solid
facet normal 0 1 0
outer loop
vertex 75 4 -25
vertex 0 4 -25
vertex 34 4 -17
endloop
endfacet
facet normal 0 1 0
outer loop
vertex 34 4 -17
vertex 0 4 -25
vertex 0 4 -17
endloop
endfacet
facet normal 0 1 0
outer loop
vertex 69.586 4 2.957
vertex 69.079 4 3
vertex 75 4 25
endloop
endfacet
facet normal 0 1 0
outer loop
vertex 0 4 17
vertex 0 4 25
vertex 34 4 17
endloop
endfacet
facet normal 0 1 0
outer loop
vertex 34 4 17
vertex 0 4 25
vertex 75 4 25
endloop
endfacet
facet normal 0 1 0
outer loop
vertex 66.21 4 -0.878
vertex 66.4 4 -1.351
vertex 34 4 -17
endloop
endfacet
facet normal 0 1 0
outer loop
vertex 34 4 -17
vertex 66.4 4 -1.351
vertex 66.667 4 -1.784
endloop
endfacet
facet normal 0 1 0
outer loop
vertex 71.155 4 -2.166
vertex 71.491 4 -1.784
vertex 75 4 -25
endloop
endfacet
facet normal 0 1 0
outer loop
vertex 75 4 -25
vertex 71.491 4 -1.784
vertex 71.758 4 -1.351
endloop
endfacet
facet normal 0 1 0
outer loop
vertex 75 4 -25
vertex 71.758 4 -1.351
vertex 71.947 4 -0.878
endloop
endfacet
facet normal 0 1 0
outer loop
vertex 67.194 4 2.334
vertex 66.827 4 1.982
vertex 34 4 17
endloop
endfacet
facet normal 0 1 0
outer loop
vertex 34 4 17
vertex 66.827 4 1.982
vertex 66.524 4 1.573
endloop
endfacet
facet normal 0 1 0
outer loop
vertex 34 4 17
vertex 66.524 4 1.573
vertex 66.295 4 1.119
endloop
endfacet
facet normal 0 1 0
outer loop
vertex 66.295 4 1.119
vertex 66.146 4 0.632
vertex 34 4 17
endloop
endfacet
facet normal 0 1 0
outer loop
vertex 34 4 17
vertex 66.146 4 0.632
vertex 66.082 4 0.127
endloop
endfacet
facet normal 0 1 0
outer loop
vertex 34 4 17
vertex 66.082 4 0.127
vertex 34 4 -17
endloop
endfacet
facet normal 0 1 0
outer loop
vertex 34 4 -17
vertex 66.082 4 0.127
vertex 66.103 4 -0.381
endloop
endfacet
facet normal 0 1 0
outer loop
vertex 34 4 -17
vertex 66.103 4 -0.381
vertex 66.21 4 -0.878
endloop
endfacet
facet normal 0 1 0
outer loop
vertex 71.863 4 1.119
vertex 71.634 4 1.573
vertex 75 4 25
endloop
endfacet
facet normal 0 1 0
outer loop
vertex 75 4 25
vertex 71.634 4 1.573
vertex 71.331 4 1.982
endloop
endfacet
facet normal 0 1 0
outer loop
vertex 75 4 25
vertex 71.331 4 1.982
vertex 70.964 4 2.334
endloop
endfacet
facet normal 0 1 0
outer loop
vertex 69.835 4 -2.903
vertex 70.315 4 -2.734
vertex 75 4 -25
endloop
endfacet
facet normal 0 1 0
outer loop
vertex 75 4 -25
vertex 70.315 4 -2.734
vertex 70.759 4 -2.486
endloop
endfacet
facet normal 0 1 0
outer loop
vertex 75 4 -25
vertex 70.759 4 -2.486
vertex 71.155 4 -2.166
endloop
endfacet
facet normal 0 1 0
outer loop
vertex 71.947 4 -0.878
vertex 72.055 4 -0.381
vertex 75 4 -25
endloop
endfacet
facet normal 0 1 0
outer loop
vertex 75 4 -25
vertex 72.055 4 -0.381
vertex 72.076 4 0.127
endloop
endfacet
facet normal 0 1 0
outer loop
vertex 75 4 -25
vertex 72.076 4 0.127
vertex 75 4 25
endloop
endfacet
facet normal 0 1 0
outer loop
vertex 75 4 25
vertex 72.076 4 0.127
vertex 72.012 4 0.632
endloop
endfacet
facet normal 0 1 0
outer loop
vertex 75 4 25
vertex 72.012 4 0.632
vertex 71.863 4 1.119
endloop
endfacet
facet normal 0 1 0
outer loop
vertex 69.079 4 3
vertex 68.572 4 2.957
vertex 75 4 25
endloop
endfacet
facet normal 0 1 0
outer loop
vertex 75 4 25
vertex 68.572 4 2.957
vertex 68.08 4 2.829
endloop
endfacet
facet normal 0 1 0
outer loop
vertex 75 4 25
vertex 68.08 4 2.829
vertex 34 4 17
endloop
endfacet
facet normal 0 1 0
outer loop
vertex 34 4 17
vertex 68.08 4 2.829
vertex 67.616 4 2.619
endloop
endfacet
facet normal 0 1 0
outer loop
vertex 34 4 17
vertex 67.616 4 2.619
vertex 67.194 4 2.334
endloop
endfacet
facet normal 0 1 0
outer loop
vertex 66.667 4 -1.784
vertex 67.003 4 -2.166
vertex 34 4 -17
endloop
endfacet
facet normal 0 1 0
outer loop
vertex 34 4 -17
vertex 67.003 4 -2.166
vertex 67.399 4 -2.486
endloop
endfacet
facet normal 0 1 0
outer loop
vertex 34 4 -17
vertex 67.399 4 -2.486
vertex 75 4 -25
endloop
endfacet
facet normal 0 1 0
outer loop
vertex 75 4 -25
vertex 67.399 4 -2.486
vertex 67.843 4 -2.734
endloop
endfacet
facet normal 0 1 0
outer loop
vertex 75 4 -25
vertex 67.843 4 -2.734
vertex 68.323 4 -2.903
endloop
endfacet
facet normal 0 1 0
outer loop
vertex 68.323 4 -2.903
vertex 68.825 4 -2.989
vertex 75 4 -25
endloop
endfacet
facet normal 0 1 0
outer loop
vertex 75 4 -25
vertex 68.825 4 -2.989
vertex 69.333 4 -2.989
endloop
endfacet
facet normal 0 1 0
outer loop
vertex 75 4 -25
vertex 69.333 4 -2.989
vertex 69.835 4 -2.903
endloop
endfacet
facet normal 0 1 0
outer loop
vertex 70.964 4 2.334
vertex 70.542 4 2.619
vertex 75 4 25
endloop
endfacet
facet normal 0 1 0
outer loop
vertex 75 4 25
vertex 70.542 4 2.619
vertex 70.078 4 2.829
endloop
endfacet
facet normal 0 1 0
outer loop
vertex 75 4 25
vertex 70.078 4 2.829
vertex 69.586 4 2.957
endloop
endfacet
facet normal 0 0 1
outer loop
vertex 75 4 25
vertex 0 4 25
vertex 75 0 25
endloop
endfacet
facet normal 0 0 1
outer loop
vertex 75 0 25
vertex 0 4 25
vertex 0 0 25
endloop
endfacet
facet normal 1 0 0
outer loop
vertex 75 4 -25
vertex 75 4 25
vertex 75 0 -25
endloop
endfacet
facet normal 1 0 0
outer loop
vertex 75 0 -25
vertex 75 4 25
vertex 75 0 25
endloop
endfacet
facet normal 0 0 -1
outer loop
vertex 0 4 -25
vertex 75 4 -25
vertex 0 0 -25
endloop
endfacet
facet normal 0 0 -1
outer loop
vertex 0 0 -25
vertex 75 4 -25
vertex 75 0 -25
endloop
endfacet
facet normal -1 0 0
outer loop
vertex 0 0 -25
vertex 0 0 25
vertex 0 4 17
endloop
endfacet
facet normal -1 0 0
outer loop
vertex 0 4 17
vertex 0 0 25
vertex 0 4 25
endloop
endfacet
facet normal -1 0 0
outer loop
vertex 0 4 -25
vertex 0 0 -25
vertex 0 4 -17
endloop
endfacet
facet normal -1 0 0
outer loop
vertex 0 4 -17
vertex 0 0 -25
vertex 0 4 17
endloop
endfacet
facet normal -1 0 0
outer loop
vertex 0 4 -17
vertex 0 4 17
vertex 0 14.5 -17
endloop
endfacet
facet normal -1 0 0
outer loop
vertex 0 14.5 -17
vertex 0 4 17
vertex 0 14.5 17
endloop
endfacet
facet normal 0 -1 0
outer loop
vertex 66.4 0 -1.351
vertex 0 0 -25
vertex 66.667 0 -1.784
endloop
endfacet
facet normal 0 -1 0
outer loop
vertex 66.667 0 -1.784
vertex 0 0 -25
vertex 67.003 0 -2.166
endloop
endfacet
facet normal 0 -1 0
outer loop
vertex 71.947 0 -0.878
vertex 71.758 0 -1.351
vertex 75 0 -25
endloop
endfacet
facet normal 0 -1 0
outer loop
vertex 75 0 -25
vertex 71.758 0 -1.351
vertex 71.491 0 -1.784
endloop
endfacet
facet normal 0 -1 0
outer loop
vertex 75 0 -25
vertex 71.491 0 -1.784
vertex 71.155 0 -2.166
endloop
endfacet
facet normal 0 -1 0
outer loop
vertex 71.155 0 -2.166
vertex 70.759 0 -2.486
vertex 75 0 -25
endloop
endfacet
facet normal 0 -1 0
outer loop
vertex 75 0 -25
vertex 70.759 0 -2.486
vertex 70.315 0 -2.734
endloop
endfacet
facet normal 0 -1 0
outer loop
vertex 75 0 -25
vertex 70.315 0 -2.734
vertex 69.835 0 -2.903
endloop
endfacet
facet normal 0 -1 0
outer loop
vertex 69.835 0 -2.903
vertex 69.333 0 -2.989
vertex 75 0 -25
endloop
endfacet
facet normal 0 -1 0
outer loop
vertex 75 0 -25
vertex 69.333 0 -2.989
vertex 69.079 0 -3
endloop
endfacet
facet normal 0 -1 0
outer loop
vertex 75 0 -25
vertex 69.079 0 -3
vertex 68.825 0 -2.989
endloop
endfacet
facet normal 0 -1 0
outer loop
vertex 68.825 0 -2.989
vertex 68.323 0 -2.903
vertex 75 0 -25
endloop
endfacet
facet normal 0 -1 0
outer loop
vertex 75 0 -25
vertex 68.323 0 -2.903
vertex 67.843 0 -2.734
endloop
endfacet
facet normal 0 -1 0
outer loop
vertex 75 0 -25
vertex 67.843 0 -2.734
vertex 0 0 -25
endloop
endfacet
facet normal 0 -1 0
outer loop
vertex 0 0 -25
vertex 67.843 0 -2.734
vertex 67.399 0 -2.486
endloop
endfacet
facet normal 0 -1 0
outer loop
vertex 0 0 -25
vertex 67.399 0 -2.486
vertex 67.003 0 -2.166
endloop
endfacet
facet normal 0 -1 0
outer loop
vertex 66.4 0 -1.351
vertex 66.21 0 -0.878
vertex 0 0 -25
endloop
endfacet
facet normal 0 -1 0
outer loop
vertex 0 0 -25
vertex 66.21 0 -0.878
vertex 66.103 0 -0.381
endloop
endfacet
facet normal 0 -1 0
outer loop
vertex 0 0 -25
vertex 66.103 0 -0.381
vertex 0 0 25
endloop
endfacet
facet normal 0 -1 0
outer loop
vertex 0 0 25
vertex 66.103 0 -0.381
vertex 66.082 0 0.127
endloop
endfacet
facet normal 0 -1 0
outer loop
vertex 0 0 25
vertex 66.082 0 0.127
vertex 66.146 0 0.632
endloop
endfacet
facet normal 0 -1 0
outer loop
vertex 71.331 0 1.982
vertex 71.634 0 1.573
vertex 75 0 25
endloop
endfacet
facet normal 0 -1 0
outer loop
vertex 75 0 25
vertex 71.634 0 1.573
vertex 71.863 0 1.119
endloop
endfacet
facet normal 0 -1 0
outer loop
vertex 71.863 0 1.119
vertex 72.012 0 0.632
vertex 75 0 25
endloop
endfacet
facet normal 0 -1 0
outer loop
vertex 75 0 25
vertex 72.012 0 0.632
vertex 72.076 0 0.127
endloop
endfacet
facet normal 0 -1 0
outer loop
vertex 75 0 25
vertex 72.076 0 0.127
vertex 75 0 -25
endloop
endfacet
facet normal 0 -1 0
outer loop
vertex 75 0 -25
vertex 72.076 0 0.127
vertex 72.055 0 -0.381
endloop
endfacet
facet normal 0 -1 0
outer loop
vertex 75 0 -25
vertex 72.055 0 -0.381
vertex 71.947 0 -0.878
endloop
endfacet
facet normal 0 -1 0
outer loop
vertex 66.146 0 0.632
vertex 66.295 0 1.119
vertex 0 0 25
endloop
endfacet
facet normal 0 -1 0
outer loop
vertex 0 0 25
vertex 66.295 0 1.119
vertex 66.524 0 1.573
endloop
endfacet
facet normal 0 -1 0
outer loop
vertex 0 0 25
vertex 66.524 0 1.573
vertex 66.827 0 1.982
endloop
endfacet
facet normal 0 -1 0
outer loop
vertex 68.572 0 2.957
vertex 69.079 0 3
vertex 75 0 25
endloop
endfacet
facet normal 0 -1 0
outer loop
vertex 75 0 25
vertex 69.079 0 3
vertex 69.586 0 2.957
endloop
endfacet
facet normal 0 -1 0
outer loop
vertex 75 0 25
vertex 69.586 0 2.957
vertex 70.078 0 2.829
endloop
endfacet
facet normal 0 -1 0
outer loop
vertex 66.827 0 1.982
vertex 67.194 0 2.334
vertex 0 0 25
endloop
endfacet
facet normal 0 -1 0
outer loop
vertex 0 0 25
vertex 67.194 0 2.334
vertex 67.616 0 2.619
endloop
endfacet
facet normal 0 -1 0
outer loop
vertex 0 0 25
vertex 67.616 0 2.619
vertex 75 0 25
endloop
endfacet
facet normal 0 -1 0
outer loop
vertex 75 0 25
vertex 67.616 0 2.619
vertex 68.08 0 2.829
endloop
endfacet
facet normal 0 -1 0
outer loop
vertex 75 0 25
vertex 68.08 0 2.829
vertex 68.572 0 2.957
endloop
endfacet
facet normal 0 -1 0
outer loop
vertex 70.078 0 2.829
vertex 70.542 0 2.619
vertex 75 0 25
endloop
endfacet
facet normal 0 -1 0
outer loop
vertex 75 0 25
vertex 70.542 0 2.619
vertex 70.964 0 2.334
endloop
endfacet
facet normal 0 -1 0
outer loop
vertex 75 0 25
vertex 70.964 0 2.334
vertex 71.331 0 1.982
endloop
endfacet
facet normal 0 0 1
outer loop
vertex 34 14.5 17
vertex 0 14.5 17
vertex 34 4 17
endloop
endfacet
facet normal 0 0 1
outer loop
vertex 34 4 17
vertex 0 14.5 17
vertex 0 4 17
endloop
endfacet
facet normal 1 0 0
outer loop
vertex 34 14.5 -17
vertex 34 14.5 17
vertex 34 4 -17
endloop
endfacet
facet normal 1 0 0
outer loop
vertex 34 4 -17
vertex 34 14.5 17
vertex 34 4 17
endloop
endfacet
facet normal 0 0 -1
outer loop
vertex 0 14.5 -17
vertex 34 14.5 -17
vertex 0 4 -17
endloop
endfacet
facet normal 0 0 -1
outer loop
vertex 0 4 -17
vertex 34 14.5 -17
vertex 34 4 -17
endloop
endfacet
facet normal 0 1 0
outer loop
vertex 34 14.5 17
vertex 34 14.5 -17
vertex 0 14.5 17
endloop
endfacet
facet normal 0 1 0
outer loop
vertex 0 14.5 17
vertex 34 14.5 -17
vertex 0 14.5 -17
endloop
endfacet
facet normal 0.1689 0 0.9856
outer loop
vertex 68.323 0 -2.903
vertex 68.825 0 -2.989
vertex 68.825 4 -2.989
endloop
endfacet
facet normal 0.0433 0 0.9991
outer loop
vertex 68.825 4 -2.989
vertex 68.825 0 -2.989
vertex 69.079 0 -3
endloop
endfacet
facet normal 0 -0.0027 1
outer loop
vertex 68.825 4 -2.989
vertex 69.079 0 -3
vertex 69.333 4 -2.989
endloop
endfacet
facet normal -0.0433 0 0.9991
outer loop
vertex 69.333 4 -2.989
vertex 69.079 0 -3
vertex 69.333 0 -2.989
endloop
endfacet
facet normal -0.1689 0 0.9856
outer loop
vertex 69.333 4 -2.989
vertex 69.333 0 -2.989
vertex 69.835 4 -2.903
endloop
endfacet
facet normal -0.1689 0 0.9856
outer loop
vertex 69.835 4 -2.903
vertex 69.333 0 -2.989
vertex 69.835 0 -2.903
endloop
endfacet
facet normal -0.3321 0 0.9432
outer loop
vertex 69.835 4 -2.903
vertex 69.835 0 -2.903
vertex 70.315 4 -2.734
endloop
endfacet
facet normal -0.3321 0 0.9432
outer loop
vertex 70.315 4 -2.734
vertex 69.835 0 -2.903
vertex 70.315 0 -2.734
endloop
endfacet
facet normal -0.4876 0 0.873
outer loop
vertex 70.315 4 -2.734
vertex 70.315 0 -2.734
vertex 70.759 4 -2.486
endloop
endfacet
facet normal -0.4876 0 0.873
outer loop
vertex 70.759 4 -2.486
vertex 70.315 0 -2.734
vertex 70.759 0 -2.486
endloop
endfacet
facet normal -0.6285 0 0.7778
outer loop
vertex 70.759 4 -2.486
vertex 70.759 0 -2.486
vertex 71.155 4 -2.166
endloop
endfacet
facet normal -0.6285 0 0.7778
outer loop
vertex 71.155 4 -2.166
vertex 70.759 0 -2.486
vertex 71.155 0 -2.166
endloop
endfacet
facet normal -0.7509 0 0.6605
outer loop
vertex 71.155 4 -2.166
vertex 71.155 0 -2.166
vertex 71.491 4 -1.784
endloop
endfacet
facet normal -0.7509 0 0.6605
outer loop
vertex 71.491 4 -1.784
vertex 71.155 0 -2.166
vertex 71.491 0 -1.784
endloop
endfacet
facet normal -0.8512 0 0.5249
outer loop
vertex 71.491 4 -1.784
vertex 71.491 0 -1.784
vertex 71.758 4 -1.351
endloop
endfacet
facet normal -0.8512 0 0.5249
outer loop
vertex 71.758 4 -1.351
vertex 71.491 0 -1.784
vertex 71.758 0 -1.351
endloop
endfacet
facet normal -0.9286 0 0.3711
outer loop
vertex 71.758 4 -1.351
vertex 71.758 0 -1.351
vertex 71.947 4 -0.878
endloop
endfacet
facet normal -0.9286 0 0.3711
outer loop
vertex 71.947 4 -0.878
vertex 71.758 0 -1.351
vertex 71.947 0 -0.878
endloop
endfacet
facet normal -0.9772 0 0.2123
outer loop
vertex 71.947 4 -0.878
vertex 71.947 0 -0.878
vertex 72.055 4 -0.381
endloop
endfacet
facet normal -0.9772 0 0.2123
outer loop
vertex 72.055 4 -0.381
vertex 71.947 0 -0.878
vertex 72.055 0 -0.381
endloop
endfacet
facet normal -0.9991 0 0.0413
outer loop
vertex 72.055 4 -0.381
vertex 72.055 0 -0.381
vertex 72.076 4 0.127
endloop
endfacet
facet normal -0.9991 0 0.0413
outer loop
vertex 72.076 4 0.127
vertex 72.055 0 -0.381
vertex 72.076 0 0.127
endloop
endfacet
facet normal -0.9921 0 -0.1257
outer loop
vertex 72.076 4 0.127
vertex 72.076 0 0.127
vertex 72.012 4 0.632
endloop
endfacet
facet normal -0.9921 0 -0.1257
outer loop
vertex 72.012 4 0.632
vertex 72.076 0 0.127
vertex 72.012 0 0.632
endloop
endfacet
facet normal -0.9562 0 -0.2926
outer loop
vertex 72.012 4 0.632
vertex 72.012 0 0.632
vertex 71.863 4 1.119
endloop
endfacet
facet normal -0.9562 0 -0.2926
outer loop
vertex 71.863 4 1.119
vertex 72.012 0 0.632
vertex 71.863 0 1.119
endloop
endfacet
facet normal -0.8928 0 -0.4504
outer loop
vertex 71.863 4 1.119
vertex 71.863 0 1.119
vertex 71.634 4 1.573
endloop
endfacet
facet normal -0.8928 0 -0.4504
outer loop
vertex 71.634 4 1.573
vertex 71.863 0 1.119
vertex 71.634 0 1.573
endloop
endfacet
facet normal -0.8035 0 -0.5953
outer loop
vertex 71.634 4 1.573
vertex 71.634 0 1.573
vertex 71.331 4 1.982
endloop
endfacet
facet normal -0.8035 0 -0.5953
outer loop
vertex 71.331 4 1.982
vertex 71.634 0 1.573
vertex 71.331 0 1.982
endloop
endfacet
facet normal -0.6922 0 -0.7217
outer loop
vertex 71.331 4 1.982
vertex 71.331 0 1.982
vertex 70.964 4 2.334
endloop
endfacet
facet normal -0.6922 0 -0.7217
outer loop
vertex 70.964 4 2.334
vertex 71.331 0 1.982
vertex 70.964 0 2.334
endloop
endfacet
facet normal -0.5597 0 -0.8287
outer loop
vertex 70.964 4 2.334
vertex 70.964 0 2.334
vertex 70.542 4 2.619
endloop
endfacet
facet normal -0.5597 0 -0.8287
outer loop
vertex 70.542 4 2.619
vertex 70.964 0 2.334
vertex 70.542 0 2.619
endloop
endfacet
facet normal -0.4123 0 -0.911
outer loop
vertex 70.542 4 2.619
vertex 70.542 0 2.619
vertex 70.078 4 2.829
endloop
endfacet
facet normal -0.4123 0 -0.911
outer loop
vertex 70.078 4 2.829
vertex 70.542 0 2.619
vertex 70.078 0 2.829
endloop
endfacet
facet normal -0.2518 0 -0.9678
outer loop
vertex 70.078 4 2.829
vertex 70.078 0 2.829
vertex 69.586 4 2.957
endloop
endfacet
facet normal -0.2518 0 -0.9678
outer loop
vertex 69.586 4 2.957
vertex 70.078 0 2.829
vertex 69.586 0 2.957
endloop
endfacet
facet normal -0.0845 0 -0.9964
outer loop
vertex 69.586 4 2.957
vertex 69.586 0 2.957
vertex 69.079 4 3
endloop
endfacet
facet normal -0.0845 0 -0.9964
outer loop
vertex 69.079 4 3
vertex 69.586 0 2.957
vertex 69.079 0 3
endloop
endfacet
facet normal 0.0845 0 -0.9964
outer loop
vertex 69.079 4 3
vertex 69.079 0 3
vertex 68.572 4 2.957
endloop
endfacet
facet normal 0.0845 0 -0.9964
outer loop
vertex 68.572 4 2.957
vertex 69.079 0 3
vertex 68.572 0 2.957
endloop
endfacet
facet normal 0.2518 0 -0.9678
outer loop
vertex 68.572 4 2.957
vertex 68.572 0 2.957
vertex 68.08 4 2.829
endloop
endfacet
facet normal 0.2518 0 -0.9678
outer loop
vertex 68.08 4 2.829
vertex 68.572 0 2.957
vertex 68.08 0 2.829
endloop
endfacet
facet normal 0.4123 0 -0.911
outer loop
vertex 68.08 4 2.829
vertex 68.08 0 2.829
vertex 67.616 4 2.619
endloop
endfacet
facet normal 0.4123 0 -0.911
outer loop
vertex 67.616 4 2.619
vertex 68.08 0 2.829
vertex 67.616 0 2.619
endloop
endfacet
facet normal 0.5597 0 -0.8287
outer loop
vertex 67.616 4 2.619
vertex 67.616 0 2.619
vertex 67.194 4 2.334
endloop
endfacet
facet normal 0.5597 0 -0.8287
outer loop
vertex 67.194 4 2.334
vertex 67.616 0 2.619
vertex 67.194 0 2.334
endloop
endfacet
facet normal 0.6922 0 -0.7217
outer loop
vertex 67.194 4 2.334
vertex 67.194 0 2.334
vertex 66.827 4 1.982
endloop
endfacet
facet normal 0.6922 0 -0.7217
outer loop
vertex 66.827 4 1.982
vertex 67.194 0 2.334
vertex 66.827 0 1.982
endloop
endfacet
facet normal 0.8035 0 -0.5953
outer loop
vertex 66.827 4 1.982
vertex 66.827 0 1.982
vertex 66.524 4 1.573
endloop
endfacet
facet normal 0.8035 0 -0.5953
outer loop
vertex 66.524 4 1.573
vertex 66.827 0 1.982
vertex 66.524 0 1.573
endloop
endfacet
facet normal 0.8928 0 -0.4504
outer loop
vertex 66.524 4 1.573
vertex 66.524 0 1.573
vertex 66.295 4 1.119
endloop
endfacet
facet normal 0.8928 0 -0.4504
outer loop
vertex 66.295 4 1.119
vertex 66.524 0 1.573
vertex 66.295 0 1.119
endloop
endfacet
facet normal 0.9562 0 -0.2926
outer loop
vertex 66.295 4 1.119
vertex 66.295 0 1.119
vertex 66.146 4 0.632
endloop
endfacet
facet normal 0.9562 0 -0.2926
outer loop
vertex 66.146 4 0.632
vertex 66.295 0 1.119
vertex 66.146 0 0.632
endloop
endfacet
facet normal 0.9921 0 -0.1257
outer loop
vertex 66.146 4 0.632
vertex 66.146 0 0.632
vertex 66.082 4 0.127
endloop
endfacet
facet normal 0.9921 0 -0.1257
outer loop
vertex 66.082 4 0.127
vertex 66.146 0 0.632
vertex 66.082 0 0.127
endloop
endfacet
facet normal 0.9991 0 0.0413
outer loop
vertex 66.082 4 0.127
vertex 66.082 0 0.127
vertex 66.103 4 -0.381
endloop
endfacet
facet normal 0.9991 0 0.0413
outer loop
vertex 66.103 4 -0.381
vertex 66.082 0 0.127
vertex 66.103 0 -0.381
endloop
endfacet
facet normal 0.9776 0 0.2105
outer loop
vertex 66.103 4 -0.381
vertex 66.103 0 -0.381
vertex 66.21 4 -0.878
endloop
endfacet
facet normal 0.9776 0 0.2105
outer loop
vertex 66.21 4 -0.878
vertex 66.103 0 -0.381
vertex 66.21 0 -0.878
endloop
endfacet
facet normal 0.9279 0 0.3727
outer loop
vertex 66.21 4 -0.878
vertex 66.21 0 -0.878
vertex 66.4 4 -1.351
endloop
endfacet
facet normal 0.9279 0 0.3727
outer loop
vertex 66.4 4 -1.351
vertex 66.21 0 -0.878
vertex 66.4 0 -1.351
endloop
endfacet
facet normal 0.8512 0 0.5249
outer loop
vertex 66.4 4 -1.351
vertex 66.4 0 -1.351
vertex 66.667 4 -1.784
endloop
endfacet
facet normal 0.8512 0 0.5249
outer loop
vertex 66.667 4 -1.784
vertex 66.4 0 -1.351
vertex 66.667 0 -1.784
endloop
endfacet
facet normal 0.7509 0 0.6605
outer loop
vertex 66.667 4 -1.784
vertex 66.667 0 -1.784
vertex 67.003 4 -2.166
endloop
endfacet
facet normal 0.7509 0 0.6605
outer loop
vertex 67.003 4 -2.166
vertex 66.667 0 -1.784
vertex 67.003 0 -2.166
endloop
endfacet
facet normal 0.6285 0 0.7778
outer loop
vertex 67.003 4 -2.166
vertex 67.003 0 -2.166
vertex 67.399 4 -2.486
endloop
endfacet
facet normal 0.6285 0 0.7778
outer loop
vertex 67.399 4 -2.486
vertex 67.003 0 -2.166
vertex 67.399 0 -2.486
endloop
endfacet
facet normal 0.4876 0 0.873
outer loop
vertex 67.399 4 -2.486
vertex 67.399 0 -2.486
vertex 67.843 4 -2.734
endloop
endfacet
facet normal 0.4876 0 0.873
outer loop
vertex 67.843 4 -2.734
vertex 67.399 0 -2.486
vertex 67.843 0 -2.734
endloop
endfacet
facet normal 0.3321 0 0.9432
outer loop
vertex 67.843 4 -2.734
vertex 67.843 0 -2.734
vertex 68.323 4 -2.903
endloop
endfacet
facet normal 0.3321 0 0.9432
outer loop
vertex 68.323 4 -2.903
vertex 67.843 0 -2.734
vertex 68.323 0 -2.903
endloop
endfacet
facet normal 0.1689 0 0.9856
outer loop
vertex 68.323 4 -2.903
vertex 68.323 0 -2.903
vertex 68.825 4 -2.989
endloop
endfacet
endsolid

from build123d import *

# Parameters (mm, degrees)
BOSS_EXTRUDE2_DEPTH = 4
BOSS_EXTRUDE4_DEPTH = 10.5
SKETCH9_R           = 3
CUT_EXTRUDE1_DEPTH  = 10


with BuildPart() as part:
    # Sketch1 → Boss-Extrude2 (new body)
    with BuildSketch(Plane(origin=(0, 0, 0), x_dir=(1, 0, 0), z_dir=(0, 1, 0))):
        Polygon((0, 0), (0, 25), (75, 25), (75, -25), (0, -25), align=None)
    extrude(amount=BOSS_EXTRUDE2_DEPTH)

    # Sketch7 → Boss-Extrude4 (add)
    with BuildSketch(Plane(origin=(0, 4, 0), x_dir=(1, 0, 0), z_dir=(0, 1, 0))):
        Polygon((0, 0), (0, 17), (34, 17), (34, -17), (0, -17), align=None)
    extrude(amount=BOSS_EXTRUDE4_DEPTH)

    # Sketch9 → Cut-Extrude1 (cut)
    with BuildSketch(Plane(origin=(0, 4, 0), x_dir=(1, 0, 0), z_dir=(0, 1, 0))):
        with Locations((69.078986276, 0)):
            Circle(SKETCH9_R)
    extrude(amount=-CUT_EXTRUDE1_DEPTH, mode=Mode.SUBTRACT)


solid = part.part
